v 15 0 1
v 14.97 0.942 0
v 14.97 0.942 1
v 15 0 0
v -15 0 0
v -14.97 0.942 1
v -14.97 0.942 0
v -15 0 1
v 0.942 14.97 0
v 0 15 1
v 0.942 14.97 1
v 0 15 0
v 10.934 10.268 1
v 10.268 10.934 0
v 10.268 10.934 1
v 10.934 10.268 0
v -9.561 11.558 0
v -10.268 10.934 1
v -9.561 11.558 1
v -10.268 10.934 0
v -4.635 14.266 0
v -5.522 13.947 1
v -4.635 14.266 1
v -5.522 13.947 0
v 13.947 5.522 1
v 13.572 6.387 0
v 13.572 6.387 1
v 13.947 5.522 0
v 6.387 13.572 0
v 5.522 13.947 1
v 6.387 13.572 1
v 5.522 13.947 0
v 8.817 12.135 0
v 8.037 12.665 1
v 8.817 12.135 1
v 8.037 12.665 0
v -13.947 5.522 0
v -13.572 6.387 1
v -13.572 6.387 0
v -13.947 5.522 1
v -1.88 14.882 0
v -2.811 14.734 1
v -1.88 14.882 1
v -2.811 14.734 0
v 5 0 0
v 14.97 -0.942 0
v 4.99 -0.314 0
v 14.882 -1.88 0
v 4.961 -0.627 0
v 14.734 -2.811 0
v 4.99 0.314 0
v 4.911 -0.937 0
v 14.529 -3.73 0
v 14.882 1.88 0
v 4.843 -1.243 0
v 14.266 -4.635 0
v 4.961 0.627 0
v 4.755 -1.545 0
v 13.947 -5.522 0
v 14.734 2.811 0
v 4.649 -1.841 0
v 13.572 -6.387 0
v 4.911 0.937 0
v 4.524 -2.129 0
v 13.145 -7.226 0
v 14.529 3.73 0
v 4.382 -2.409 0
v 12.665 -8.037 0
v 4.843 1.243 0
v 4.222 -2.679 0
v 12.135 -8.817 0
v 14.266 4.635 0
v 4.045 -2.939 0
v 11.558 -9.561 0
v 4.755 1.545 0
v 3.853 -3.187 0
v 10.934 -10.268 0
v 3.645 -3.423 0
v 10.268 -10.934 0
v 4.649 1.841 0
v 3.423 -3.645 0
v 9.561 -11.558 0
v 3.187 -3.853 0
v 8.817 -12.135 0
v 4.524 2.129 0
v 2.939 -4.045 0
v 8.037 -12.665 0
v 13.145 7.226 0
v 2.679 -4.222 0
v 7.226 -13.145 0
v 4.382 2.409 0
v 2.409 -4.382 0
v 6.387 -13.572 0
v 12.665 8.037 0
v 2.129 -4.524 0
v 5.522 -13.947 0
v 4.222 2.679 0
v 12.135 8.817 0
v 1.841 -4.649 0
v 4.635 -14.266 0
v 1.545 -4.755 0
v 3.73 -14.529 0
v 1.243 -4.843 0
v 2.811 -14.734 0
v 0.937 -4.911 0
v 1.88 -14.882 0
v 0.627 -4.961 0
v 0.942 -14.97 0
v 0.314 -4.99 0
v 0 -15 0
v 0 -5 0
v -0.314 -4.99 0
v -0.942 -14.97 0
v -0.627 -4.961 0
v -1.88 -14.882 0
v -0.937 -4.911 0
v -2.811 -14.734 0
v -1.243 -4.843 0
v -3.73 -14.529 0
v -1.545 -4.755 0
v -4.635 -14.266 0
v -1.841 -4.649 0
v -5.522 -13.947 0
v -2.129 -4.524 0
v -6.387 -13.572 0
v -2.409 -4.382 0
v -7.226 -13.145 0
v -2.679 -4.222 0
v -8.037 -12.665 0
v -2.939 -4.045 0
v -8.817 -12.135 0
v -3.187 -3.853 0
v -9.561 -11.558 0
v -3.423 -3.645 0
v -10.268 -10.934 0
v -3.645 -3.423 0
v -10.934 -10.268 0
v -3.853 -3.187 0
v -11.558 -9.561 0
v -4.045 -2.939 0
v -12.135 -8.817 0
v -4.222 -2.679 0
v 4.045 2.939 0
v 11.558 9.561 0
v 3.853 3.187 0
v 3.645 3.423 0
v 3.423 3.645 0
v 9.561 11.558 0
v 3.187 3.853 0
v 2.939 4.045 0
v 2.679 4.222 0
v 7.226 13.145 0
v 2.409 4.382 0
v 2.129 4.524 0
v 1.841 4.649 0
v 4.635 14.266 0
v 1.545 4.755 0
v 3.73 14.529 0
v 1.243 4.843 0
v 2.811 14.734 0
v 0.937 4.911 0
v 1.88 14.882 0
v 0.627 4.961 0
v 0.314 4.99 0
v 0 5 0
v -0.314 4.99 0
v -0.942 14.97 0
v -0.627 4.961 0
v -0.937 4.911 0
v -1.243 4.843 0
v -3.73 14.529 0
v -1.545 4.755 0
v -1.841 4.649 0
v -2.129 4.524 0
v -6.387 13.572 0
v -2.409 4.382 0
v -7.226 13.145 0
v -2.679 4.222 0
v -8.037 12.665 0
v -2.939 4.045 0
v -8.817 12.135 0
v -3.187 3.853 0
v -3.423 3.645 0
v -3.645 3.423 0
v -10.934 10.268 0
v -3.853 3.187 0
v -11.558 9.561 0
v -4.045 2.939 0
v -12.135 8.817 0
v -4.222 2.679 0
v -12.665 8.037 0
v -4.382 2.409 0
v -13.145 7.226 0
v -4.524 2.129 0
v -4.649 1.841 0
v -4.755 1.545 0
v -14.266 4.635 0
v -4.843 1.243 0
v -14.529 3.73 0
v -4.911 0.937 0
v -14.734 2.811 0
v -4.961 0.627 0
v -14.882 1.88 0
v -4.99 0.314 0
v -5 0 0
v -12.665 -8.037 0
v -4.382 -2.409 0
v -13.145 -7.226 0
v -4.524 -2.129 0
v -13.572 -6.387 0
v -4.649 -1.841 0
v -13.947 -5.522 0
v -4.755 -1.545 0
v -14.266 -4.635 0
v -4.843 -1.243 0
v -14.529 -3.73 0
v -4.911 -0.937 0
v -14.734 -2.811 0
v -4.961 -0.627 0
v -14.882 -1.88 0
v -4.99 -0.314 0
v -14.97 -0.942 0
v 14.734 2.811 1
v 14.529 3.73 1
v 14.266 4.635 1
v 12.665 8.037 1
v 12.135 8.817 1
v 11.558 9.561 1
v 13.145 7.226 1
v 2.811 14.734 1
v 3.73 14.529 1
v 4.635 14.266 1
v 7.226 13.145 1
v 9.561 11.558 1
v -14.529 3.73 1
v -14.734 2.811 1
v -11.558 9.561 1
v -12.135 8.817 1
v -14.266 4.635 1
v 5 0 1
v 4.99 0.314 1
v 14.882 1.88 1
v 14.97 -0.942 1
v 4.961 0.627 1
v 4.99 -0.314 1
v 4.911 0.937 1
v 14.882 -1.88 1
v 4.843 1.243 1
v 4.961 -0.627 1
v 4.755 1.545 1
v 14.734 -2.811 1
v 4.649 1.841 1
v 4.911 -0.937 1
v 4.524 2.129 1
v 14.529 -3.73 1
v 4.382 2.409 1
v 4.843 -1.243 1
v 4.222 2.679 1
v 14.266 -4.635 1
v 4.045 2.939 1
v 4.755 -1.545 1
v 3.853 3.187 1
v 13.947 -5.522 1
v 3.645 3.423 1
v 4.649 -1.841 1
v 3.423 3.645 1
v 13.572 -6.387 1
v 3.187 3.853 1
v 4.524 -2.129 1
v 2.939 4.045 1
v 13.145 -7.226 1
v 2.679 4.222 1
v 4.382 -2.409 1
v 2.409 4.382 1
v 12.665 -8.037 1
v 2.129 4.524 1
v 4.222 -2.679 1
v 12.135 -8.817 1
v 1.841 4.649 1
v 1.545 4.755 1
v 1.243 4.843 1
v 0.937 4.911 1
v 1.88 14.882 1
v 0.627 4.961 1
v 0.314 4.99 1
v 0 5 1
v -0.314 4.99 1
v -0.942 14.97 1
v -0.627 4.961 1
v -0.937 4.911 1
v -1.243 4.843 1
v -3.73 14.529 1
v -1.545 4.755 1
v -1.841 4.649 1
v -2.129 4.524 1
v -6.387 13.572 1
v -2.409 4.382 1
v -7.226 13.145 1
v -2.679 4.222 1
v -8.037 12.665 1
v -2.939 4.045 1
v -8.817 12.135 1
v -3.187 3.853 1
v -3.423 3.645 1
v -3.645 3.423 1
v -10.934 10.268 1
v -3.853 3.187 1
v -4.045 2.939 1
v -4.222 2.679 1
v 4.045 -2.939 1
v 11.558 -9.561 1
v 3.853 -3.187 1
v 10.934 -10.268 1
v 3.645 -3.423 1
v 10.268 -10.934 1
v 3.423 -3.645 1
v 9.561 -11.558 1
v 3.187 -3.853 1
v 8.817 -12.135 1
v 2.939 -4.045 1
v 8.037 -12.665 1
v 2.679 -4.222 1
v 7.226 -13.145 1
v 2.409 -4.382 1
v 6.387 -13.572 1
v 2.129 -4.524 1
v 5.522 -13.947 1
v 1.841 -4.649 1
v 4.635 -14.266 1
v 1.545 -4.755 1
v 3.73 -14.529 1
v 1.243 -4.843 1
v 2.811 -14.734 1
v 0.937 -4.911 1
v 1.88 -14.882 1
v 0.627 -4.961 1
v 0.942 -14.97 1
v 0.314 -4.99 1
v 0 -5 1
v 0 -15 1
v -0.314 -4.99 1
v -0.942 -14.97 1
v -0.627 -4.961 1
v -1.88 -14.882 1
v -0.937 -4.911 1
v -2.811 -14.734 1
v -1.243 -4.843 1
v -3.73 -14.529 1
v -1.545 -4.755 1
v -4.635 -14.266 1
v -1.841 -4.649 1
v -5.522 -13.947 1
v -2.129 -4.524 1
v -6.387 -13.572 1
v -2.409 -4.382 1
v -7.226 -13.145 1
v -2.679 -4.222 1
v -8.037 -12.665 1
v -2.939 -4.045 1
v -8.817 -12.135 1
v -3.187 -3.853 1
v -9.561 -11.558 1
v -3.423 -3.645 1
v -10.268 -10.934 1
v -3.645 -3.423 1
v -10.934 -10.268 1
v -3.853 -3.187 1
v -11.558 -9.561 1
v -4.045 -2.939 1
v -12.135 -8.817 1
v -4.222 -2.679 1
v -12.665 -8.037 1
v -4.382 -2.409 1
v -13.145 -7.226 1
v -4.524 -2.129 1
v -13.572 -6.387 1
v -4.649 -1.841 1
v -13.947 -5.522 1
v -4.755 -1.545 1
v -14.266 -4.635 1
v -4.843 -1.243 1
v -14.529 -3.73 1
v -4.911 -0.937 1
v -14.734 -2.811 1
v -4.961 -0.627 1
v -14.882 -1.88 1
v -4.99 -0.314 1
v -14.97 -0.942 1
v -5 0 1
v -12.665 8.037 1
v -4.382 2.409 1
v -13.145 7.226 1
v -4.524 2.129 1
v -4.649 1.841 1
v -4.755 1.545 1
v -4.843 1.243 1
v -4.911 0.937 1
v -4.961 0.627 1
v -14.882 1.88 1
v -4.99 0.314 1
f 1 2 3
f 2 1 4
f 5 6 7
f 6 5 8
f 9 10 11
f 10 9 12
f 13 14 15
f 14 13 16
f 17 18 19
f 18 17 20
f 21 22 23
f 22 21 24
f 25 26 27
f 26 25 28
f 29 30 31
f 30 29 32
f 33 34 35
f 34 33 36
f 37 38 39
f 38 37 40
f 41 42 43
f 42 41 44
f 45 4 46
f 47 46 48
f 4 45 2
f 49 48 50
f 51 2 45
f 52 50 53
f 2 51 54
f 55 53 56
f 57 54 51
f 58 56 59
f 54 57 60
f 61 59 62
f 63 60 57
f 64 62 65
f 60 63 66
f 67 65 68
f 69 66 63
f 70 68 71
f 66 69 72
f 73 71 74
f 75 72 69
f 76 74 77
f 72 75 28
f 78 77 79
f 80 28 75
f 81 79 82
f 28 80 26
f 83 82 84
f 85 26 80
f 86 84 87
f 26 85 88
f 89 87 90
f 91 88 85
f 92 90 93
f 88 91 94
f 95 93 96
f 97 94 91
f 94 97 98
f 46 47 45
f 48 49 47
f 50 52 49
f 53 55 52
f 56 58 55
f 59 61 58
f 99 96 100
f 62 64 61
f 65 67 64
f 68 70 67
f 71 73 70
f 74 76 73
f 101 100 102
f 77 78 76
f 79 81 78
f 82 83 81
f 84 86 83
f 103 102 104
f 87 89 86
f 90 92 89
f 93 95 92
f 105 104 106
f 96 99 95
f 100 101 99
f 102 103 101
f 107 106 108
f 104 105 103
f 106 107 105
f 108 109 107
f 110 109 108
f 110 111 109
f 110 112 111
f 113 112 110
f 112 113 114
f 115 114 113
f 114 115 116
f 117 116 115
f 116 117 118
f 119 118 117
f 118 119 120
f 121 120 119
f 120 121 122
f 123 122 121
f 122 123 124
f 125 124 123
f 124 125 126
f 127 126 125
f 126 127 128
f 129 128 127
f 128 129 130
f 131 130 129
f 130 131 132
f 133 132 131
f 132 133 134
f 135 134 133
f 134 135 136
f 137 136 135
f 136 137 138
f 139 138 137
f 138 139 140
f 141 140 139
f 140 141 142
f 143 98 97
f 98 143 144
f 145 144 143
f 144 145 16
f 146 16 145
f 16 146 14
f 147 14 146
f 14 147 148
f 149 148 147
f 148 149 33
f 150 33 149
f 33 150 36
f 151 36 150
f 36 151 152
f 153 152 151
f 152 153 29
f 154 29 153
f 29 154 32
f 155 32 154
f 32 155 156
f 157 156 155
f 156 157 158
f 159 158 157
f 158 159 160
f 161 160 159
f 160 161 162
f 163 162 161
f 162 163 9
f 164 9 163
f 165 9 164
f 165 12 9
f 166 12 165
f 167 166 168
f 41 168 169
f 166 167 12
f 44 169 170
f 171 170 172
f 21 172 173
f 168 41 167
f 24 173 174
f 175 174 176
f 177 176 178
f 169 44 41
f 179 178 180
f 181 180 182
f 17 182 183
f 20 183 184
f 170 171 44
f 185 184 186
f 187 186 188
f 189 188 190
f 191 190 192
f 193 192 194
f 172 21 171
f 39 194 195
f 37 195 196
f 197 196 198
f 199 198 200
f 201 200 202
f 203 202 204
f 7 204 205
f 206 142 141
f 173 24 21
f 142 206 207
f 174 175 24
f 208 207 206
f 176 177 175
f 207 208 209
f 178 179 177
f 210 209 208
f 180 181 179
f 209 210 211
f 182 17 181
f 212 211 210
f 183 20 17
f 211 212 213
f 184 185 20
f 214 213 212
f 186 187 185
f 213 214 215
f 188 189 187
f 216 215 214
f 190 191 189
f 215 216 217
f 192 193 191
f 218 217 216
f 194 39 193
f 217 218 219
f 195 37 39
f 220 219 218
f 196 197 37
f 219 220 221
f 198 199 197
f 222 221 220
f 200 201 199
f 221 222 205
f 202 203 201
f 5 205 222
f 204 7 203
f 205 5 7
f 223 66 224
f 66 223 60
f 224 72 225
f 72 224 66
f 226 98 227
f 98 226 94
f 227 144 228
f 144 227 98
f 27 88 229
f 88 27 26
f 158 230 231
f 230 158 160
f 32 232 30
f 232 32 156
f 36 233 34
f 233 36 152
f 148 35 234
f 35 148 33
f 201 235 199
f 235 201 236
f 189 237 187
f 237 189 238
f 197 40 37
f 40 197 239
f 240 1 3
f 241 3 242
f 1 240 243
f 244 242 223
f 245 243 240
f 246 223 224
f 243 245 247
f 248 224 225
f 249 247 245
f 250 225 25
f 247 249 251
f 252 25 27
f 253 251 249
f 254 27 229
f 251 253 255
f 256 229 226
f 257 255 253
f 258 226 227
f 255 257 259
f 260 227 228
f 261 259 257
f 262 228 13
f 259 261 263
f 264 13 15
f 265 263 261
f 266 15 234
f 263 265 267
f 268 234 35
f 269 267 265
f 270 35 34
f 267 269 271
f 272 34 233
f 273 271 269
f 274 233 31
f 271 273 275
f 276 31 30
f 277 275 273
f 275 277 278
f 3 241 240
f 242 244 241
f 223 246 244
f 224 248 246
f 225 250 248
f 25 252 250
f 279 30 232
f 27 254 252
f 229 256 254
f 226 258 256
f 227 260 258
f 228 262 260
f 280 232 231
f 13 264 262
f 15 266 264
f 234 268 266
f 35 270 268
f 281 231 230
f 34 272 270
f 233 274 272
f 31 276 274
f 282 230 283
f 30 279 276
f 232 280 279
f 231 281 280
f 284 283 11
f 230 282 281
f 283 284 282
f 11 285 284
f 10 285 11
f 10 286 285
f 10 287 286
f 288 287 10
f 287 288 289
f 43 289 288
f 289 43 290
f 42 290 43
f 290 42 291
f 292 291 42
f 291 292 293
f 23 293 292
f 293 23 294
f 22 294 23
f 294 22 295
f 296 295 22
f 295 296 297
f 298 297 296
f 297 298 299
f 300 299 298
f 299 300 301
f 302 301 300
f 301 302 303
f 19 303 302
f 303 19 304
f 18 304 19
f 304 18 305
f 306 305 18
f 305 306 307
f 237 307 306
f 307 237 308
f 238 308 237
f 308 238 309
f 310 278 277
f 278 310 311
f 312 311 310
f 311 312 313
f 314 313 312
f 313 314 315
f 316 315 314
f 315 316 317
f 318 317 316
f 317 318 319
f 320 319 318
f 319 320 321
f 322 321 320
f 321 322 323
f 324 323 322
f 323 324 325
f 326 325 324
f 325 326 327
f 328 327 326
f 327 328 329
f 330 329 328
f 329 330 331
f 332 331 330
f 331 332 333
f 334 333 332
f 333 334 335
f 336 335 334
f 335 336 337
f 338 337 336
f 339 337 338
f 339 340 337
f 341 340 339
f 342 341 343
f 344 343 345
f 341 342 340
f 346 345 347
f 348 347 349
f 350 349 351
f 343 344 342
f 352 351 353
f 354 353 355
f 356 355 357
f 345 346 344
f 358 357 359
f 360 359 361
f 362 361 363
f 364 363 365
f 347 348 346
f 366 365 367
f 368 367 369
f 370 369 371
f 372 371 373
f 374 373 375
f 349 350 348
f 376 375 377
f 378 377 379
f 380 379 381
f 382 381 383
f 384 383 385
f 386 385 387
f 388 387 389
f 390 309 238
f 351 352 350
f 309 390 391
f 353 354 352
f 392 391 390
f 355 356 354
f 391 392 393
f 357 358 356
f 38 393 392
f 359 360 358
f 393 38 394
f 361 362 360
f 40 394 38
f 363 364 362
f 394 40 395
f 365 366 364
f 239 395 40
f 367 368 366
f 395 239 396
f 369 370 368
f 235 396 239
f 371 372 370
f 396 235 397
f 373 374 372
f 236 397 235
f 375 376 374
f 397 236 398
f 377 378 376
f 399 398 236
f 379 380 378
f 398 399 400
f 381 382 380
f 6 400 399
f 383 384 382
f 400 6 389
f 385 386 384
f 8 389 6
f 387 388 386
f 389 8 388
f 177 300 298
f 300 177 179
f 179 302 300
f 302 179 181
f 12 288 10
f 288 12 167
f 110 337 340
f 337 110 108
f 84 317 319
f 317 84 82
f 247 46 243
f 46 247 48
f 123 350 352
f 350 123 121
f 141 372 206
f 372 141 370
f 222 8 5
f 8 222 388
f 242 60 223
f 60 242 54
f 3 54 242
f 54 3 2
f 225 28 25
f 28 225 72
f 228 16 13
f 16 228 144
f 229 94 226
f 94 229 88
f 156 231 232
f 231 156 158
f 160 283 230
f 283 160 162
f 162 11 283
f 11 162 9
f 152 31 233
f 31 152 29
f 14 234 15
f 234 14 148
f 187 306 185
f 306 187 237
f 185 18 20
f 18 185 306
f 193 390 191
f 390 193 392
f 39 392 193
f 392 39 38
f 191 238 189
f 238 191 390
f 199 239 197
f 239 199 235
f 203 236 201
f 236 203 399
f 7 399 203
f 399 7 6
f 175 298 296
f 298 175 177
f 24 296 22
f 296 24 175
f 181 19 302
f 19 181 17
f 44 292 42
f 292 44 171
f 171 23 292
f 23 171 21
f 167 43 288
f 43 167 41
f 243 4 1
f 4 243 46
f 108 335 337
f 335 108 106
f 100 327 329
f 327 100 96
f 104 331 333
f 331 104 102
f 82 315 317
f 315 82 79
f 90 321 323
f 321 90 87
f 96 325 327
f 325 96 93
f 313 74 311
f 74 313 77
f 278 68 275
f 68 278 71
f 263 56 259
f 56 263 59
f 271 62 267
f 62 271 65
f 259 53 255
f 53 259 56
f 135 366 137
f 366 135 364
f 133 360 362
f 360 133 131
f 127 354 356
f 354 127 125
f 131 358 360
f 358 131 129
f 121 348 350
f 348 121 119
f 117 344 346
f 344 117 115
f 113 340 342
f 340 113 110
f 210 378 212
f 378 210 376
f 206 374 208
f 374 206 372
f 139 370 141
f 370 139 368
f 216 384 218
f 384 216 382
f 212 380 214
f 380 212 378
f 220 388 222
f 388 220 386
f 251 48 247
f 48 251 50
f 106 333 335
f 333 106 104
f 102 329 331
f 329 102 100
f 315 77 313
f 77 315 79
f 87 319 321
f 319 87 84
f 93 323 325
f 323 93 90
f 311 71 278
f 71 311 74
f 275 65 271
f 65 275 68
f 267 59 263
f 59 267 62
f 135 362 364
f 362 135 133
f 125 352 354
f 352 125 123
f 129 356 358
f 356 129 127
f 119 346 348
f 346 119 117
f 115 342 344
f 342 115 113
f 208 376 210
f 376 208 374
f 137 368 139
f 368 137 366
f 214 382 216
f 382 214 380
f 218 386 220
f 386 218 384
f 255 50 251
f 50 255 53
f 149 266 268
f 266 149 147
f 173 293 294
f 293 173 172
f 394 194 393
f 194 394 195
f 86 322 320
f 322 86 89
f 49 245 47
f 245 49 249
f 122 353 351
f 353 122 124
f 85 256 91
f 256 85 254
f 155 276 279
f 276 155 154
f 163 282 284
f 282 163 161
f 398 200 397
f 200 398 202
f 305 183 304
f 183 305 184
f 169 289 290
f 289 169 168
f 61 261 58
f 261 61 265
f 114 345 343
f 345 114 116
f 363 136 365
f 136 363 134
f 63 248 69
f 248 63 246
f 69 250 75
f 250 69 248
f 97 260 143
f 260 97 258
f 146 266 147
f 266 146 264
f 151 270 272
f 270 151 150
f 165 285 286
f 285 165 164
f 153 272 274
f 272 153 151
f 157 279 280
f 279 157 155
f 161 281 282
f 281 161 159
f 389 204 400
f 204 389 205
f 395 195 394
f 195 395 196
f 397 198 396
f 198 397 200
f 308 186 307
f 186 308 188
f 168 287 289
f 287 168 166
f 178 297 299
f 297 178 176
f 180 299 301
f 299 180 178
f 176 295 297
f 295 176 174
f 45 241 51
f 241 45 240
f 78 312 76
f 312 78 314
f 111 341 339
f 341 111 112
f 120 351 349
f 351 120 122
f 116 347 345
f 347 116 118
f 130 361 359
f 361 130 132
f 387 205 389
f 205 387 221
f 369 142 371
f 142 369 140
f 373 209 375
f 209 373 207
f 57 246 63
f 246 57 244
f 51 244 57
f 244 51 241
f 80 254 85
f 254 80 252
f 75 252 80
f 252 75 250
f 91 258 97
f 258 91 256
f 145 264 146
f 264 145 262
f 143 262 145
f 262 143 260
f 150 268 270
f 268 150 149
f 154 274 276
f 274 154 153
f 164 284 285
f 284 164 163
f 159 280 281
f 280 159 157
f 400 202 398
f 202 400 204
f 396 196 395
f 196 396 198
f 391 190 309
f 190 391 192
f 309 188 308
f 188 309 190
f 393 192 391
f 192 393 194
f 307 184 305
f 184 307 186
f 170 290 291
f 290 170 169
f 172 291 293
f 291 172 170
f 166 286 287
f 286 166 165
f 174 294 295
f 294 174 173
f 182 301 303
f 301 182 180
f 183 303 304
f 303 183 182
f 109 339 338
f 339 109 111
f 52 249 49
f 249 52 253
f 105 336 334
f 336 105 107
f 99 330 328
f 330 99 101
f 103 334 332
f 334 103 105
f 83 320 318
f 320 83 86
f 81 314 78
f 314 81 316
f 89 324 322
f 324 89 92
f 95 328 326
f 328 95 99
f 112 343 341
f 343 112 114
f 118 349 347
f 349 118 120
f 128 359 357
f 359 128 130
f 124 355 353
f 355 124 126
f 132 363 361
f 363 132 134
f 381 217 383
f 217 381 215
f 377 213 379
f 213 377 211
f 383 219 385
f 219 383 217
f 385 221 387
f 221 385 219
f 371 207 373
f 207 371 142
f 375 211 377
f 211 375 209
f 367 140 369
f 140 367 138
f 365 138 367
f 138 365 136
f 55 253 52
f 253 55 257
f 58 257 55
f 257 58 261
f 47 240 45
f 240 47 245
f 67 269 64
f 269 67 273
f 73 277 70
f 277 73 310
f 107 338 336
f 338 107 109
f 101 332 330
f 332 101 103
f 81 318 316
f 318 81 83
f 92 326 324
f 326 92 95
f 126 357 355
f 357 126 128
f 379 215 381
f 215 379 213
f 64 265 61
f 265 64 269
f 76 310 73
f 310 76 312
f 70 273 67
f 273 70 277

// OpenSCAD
difference() {
    cylinder(h=1, r=15, center=false, $fn=100);
    cylinder(h=5, r=5, center=true, $fn=100);
}
